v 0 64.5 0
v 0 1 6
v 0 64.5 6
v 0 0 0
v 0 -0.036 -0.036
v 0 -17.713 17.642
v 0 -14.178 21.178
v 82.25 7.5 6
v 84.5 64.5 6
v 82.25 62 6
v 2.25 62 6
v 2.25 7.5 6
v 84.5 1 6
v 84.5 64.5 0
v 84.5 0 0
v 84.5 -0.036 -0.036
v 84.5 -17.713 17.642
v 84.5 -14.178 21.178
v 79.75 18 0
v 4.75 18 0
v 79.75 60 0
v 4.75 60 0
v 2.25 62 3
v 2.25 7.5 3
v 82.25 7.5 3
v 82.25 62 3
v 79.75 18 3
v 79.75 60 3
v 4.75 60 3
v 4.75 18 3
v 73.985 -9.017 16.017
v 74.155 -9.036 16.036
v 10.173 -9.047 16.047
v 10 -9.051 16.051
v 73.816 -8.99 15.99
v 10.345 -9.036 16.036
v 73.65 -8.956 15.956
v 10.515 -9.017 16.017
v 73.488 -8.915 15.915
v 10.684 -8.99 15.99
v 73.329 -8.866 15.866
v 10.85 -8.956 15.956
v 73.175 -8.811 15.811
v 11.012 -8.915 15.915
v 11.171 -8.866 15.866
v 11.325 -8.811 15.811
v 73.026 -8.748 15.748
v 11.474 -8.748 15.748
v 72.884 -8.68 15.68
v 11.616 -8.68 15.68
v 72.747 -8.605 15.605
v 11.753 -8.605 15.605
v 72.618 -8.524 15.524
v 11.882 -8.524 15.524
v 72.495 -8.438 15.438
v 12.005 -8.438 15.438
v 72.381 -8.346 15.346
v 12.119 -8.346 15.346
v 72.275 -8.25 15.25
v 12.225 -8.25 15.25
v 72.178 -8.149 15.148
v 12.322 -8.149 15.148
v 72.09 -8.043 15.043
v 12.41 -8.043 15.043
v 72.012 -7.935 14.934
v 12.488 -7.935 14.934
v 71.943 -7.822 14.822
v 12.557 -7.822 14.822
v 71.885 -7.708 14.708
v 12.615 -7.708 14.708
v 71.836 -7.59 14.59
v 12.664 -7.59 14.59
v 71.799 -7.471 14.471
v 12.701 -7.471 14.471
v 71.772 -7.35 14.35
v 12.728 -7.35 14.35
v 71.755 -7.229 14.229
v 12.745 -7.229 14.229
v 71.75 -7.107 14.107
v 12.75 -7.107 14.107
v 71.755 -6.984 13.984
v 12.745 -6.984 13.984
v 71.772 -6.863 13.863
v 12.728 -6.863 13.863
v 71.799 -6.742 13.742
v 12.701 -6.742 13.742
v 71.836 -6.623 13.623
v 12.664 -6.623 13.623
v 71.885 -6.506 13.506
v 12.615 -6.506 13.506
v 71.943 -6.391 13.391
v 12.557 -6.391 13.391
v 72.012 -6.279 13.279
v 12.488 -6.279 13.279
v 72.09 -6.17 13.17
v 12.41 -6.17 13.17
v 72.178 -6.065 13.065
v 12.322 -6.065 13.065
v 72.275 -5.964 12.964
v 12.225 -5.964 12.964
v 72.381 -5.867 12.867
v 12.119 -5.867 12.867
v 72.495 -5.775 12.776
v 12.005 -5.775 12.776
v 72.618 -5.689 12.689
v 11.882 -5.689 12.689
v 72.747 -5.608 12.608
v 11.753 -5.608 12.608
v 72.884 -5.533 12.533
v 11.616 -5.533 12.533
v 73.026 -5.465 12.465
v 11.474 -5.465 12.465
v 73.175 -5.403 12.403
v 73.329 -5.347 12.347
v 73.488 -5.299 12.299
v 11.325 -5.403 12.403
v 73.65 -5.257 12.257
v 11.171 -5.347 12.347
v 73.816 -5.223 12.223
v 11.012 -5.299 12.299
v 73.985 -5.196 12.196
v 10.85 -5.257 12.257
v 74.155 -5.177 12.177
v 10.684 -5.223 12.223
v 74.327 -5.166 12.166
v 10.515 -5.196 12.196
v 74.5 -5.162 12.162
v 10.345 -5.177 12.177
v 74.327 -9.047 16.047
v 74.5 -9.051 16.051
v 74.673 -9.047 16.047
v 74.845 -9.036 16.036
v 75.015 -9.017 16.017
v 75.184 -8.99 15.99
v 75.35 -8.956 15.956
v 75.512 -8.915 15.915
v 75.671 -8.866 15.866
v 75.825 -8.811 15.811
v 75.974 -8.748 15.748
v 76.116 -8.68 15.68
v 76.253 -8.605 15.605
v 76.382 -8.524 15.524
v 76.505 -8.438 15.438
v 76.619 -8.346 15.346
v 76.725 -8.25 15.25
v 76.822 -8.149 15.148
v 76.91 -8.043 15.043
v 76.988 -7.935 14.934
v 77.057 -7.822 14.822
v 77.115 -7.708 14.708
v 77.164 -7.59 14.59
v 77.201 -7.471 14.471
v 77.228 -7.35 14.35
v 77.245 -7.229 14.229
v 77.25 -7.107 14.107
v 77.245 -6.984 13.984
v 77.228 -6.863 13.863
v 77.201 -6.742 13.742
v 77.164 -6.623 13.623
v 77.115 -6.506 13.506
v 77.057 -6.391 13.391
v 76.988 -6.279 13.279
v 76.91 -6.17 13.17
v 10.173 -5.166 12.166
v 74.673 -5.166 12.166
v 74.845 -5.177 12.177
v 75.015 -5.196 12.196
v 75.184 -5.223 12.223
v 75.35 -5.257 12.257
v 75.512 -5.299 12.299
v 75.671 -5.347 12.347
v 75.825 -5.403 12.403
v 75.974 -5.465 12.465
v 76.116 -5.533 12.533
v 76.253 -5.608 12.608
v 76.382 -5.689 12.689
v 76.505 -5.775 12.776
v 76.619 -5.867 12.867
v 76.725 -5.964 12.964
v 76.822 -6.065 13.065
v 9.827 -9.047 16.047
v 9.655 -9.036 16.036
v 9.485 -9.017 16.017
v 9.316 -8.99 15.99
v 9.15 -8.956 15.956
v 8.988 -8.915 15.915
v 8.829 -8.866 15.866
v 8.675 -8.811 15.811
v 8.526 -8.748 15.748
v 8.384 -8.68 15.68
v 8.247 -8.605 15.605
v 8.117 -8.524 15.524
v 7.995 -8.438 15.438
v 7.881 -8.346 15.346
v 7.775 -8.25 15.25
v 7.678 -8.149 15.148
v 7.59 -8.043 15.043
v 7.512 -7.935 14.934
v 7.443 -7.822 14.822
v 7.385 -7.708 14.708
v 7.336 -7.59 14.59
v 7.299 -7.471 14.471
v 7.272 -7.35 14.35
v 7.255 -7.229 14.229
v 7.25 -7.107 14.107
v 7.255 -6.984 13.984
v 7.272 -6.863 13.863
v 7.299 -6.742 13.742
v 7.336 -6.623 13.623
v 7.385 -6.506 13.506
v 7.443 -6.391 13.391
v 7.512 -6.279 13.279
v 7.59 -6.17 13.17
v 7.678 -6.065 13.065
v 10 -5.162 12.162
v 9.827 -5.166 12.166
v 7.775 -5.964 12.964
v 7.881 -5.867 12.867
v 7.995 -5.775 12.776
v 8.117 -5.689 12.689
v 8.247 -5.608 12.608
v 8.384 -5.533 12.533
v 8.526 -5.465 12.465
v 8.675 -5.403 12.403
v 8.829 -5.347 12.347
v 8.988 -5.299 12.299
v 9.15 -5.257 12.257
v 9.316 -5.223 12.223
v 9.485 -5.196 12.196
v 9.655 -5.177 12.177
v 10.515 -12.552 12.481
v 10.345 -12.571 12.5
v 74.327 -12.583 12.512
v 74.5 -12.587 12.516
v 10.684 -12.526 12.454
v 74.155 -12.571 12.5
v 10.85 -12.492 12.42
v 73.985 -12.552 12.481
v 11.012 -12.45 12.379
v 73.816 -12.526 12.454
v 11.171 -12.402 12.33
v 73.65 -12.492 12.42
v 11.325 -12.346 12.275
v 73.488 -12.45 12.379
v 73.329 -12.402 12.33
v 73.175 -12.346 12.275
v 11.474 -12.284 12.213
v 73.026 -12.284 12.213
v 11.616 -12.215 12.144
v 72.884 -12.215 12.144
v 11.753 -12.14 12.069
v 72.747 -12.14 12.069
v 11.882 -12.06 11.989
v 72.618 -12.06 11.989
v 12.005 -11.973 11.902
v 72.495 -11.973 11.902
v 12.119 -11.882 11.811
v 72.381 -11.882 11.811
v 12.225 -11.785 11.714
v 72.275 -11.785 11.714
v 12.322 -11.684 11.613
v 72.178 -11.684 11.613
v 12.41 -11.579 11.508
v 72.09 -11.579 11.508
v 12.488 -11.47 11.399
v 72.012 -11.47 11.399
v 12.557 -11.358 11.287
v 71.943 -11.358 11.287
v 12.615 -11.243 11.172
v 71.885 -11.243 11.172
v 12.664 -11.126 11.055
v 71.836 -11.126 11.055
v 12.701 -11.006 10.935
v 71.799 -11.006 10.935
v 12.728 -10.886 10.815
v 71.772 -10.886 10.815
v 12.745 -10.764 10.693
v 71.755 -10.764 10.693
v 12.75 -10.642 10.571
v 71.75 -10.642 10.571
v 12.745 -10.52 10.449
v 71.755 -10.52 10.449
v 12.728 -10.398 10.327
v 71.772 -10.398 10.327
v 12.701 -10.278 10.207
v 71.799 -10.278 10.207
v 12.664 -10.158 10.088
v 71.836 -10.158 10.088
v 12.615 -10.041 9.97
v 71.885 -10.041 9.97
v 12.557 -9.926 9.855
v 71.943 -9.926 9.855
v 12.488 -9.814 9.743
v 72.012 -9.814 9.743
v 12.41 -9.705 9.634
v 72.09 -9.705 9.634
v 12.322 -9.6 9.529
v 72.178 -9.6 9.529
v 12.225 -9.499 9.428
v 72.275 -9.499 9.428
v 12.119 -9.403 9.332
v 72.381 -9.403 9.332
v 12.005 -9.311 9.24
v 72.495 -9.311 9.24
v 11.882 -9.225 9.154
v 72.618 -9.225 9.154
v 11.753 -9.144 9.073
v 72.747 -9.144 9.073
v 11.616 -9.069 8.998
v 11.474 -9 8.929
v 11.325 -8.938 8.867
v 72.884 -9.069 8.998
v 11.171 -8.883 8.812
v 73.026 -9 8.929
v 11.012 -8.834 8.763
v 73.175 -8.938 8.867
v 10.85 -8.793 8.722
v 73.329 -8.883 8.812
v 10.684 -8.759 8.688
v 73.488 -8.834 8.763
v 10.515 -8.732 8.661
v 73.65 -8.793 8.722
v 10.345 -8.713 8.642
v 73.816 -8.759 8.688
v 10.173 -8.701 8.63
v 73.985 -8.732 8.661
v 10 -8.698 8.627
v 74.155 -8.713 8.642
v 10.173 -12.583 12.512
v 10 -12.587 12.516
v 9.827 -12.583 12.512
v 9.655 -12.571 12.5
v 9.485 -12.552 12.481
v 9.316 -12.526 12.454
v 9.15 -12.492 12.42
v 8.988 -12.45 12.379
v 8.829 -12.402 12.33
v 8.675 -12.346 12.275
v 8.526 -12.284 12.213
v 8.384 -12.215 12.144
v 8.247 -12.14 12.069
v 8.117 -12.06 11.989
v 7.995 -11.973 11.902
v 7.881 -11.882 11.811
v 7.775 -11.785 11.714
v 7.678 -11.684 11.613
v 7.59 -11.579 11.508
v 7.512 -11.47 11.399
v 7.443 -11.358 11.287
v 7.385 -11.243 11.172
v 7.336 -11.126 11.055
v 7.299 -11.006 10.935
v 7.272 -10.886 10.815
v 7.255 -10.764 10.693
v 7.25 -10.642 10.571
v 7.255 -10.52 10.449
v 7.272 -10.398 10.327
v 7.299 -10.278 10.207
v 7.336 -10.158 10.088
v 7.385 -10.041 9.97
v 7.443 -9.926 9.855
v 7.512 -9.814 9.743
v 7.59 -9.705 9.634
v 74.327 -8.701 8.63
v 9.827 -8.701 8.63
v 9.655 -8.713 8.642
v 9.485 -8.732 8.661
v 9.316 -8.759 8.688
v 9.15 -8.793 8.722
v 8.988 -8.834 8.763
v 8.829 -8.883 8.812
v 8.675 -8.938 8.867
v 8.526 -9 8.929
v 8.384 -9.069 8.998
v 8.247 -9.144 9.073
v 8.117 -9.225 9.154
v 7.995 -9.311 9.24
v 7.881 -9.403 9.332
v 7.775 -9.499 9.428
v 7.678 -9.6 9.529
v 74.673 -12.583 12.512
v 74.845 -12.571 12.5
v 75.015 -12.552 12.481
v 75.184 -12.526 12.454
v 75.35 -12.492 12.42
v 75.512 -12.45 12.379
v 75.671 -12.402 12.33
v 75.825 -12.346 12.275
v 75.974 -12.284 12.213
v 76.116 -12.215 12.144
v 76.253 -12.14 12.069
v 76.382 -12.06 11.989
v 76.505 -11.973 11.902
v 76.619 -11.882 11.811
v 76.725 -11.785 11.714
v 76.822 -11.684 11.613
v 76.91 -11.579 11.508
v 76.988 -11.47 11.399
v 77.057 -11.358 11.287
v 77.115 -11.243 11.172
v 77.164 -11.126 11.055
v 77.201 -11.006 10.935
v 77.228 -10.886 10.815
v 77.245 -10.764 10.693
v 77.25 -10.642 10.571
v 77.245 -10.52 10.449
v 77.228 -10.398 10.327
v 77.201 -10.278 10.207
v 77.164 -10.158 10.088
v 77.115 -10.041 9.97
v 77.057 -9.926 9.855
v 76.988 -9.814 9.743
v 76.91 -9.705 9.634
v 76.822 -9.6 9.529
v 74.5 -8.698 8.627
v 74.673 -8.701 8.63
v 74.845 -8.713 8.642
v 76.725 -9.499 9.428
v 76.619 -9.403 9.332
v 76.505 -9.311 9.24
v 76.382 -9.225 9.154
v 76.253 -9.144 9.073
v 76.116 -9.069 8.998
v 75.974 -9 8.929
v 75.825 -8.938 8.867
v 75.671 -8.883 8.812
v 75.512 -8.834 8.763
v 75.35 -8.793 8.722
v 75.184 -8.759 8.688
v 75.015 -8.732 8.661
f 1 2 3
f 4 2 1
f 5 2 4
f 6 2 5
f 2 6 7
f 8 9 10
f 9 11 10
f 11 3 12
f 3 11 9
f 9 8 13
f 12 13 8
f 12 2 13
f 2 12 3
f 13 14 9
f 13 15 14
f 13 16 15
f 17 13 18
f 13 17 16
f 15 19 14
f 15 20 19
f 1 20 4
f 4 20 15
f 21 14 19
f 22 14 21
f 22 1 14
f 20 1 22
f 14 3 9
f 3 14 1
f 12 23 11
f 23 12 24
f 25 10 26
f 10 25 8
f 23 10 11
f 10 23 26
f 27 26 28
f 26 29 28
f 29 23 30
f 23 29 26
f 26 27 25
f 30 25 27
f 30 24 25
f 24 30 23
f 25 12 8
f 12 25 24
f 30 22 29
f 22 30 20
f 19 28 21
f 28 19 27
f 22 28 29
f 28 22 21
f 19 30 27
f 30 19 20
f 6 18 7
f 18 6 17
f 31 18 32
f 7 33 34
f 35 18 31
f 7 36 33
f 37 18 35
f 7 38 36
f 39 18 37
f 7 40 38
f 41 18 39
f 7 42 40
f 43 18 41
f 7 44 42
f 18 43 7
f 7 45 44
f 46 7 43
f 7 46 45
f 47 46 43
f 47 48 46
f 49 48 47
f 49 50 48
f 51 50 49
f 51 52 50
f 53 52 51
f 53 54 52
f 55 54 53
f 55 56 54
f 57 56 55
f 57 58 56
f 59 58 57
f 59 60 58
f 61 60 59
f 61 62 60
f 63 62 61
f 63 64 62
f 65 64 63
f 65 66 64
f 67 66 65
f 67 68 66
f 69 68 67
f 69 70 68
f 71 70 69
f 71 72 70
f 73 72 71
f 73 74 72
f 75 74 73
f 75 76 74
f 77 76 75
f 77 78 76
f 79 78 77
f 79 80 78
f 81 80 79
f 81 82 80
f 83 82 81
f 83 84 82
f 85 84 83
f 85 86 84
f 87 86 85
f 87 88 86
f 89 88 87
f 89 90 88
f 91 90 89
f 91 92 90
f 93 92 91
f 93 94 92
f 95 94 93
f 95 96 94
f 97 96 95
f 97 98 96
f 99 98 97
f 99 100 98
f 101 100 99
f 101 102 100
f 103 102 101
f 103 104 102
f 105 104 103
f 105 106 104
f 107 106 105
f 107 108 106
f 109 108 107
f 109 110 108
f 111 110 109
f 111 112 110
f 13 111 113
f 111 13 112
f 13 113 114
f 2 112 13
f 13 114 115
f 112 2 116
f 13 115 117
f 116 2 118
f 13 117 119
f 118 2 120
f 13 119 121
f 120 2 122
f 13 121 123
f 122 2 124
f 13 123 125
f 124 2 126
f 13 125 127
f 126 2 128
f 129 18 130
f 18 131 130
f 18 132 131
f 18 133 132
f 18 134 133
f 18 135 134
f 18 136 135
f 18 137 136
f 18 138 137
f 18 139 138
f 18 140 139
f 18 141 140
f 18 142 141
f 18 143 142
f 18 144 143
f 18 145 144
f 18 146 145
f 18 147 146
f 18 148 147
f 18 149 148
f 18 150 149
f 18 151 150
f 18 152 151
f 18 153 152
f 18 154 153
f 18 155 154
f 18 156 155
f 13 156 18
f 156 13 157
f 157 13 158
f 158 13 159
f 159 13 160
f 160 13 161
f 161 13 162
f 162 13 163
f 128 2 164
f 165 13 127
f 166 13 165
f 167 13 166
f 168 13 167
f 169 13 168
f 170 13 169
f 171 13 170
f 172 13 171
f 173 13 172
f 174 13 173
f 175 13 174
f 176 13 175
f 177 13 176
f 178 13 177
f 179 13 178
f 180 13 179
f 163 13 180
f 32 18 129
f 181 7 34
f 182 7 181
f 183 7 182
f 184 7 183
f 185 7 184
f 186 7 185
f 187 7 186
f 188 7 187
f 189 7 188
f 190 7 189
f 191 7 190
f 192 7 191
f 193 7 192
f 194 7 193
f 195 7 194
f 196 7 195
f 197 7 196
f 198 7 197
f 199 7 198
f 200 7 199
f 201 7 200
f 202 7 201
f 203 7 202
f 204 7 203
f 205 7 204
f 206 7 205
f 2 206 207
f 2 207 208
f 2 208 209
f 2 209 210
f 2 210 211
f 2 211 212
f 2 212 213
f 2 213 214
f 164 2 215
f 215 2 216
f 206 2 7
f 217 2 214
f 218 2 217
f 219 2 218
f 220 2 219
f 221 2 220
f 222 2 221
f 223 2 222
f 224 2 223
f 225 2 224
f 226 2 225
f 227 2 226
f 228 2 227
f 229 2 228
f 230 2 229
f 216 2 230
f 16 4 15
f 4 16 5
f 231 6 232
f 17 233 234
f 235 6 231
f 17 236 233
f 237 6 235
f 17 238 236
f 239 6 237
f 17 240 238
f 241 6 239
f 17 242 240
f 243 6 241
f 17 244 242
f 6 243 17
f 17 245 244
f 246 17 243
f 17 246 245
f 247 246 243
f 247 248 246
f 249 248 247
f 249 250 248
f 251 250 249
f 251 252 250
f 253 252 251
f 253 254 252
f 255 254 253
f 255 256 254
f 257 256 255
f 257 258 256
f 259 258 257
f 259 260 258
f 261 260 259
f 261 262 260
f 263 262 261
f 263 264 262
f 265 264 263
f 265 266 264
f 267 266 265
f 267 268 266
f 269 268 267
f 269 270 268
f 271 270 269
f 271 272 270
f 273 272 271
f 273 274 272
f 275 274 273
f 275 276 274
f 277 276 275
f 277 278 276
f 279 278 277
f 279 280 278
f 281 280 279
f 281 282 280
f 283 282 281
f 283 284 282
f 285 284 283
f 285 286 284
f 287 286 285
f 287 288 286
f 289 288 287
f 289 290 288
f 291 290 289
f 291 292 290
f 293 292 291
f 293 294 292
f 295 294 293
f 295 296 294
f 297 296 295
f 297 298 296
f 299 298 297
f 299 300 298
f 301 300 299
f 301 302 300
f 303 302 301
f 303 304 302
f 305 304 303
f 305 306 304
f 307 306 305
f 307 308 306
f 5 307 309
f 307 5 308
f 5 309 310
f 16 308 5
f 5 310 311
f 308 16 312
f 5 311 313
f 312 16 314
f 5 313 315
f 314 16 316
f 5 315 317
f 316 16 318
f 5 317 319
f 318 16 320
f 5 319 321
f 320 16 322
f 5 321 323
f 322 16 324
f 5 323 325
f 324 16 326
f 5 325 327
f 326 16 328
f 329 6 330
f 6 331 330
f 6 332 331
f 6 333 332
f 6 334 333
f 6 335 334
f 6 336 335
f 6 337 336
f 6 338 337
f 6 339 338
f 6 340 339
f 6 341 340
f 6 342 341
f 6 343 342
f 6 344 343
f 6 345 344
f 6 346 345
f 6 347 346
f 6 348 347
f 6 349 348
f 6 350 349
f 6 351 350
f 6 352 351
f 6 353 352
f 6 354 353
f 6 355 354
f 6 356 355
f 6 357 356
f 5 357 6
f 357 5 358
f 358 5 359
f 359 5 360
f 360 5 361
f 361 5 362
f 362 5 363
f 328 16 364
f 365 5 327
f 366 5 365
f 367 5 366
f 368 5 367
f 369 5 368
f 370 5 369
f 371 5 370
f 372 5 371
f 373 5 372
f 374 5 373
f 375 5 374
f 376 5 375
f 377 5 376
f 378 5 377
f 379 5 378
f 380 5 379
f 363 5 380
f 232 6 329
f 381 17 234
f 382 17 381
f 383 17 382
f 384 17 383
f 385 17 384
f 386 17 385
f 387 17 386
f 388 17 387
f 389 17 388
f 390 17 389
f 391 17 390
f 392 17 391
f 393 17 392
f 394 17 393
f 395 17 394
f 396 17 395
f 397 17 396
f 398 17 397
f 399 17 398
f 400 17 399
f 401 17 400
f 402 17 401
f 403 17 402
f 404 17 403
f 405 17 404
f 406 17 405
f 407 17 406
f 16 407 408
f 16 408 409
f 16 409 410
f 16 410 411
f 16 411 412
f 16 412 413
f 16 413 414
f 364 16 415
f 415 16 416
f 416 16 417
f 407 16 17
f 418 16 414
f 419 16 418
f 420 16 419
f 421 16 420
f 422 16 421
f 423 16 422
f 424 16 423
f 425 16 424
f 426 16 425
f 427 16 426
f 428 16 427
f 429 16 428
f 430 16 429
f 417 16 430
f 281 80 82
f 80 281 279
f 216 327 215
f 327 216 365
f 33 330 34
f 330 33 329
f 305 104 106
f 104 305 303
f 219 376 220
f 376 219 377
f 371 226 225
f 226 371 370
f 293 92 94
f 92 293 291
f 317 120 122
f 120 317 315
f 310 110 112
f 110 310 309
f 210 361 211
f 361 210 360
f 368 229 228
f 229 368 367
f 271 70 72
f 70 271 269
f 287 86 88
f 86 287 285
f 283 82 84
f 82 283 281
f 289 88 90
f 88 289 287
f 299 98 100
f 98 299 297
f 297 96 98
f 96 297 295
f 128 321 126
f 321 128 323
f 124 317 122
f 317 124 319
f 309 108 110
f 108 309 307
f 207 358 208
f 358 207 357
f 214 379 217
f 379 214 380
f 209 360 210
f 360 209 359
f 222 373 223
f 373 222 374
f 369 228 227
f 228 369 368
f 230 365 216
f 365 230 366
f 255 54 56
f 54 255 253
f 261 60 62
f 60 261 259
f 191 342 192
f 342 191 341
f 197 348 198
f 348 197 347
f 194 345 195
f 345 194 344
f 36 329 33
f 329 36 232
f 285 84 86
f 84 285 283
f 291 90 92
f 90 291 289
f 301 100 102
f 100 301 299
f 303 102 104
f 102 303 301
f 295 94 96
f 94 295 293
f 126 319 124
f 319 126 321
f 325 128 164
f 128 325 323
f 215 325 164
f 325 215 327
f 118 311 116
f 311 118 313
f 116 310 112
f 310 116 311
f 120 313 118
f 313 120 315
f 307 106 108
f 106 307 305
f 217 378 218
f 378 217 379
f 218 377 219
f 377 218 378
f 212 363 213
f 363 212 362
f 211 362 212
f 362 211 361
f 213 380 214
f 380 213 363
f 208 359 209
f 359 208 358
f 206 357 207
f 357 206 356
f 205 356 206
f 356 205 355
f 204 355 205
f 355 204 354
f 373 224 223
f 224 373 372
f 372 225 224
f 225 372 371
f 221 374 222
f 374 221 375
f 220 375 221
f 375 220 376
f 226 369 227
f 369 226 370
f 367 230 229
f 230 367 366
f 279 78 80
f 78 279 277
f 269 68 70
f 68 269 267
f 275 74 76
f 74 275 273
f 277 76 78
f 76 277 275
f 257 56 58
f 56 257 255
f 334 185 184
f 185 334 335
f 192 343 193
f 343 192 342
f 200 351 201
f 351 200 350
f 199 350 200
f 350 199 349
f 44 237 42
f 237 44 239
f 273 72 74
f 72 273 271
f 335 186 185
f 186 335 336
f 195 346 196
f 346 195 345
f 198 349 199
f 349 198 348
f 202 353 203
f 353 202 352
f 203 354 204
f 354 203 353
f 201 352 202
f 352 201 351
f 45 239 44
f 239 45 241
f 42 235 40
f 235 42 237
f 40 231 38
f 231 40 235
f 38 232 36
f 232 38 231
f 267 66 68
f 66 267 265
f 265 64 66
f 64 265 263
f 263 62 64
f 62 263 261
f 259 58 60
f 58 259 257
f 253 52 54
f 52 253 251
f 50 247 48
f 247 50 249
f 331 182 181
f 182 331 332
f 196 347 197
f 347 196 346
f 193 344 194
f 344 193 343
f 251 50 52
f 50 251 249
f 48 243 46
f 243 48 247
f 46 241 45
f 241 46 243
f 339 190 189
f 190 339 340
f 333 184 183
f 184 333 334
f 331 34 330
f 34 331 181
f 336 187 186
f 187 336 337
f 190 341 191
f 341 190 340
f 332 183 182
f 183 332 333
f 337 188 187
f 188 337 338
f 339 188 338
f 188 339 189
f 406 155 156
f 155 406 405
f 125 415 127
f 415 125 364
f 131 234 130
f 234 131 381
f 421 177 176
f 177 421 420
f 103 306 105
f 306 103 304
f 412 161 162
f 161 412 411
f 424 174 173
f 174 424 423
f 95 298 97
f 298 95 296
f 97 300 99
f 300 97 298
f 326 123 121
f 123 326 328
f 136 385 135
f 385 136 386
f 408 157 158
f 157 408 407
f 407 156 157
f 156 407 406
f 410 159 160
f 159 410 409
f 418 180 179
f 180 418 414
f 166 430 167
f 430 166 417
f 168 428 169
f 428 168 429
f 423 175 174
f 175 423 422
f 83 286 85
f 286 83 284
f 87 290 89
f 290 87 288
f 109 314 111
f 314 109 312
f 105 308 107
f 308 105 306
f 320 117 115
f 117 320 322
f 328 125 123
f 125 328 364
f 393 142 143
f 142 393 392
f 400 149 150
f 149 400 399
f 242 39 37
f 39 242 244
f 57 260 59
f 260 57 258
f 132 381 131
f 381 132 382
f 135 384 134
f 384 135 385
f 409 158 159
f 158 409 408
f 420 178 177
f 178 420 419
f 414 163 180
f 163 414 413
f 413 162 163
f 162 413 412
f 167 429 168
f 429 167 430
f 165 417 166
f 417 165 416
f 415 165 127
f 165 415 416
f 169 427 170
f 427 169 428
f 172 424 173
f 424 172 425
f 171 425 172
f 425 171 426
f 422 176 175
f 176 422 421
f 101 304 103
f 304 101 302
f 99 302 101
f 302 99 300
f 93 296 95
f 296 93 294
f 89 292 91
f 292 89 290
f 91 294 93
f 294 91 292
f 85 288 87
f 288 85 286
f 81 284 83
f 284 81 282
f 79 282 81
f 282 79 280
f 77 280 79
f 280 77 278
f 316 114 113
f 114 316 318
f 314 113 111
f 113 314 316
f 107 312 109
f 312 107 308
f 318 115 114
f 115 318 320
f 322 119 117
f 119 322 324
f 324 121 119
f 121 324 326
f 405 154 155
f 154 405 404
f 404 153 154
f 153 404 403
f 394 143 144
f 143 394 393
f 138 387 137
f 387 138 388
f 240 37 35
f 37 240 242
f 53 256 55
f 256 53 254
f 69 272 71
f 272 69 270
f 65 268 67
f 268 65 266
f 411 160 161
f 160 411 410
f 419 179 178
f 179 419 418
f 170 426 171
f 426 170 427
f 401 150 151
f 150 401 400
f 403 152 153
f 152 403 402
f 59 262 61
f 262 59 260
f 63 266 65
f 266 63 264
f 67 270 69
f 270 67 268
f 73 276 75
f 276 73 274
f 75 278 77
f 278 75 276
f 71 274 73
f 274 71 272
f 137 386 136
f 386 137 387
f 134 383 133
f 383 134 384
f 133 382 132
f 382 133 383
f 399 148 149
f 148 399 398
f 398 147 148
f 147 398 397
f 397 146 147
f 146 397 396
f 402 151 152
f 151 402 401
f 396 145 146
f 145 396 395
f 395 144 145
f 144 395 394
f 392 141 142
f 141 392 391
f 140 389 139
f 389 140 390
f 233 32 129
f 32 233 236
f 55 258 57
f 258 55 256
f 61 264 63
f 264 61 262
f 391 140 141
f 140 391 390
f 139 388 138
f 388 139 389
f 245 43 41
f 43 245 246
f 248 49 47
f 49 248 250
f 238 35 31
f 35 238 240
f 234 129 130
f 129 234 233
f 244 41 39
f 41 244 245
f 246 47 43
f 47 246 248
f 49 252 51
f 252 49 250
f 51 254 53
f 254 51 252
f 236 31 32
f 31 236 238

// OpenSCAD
$fn = 100;

h = 150;
p = 20;
t = 5;

pcbw = 84.5;
pcbl = 110;

lcdw = 80;
lcdh = 54.5;

dispw = 75;
disph = 42;

r3 = 5.5 / 2;
r4 = 11 / 2;

difference()
{
    union()
    {
        cube([pcbw, lcdh + 2 * t, t + 1], false);
    }
    translate([(pcbw - lcdw) / 2, t/2 + t, 3]) cube([lcdw, lcdh, 3]);
    translate([(pcbw - dispw) / 2, 18, -1]) cube([dispw, disph, t + 3]);
    
}
translate([0, 3.5, 3.5])
rotate([45, 0, 0])
difference()
{
    union()
    {
        translate([0, -t, 0]) cube([pcbw, t, t + p], false);
    }
    translate([p/2, -t - 1, p/2 + t]) rotate([-90, 0, 0]) cylinder(t + 2, r3, r3);
    translate([pcbw - p/2, -t - 1, p/2 + t]) rotate([-90, 0, 0]) cylinder(t + 2, r3, r3);
}
